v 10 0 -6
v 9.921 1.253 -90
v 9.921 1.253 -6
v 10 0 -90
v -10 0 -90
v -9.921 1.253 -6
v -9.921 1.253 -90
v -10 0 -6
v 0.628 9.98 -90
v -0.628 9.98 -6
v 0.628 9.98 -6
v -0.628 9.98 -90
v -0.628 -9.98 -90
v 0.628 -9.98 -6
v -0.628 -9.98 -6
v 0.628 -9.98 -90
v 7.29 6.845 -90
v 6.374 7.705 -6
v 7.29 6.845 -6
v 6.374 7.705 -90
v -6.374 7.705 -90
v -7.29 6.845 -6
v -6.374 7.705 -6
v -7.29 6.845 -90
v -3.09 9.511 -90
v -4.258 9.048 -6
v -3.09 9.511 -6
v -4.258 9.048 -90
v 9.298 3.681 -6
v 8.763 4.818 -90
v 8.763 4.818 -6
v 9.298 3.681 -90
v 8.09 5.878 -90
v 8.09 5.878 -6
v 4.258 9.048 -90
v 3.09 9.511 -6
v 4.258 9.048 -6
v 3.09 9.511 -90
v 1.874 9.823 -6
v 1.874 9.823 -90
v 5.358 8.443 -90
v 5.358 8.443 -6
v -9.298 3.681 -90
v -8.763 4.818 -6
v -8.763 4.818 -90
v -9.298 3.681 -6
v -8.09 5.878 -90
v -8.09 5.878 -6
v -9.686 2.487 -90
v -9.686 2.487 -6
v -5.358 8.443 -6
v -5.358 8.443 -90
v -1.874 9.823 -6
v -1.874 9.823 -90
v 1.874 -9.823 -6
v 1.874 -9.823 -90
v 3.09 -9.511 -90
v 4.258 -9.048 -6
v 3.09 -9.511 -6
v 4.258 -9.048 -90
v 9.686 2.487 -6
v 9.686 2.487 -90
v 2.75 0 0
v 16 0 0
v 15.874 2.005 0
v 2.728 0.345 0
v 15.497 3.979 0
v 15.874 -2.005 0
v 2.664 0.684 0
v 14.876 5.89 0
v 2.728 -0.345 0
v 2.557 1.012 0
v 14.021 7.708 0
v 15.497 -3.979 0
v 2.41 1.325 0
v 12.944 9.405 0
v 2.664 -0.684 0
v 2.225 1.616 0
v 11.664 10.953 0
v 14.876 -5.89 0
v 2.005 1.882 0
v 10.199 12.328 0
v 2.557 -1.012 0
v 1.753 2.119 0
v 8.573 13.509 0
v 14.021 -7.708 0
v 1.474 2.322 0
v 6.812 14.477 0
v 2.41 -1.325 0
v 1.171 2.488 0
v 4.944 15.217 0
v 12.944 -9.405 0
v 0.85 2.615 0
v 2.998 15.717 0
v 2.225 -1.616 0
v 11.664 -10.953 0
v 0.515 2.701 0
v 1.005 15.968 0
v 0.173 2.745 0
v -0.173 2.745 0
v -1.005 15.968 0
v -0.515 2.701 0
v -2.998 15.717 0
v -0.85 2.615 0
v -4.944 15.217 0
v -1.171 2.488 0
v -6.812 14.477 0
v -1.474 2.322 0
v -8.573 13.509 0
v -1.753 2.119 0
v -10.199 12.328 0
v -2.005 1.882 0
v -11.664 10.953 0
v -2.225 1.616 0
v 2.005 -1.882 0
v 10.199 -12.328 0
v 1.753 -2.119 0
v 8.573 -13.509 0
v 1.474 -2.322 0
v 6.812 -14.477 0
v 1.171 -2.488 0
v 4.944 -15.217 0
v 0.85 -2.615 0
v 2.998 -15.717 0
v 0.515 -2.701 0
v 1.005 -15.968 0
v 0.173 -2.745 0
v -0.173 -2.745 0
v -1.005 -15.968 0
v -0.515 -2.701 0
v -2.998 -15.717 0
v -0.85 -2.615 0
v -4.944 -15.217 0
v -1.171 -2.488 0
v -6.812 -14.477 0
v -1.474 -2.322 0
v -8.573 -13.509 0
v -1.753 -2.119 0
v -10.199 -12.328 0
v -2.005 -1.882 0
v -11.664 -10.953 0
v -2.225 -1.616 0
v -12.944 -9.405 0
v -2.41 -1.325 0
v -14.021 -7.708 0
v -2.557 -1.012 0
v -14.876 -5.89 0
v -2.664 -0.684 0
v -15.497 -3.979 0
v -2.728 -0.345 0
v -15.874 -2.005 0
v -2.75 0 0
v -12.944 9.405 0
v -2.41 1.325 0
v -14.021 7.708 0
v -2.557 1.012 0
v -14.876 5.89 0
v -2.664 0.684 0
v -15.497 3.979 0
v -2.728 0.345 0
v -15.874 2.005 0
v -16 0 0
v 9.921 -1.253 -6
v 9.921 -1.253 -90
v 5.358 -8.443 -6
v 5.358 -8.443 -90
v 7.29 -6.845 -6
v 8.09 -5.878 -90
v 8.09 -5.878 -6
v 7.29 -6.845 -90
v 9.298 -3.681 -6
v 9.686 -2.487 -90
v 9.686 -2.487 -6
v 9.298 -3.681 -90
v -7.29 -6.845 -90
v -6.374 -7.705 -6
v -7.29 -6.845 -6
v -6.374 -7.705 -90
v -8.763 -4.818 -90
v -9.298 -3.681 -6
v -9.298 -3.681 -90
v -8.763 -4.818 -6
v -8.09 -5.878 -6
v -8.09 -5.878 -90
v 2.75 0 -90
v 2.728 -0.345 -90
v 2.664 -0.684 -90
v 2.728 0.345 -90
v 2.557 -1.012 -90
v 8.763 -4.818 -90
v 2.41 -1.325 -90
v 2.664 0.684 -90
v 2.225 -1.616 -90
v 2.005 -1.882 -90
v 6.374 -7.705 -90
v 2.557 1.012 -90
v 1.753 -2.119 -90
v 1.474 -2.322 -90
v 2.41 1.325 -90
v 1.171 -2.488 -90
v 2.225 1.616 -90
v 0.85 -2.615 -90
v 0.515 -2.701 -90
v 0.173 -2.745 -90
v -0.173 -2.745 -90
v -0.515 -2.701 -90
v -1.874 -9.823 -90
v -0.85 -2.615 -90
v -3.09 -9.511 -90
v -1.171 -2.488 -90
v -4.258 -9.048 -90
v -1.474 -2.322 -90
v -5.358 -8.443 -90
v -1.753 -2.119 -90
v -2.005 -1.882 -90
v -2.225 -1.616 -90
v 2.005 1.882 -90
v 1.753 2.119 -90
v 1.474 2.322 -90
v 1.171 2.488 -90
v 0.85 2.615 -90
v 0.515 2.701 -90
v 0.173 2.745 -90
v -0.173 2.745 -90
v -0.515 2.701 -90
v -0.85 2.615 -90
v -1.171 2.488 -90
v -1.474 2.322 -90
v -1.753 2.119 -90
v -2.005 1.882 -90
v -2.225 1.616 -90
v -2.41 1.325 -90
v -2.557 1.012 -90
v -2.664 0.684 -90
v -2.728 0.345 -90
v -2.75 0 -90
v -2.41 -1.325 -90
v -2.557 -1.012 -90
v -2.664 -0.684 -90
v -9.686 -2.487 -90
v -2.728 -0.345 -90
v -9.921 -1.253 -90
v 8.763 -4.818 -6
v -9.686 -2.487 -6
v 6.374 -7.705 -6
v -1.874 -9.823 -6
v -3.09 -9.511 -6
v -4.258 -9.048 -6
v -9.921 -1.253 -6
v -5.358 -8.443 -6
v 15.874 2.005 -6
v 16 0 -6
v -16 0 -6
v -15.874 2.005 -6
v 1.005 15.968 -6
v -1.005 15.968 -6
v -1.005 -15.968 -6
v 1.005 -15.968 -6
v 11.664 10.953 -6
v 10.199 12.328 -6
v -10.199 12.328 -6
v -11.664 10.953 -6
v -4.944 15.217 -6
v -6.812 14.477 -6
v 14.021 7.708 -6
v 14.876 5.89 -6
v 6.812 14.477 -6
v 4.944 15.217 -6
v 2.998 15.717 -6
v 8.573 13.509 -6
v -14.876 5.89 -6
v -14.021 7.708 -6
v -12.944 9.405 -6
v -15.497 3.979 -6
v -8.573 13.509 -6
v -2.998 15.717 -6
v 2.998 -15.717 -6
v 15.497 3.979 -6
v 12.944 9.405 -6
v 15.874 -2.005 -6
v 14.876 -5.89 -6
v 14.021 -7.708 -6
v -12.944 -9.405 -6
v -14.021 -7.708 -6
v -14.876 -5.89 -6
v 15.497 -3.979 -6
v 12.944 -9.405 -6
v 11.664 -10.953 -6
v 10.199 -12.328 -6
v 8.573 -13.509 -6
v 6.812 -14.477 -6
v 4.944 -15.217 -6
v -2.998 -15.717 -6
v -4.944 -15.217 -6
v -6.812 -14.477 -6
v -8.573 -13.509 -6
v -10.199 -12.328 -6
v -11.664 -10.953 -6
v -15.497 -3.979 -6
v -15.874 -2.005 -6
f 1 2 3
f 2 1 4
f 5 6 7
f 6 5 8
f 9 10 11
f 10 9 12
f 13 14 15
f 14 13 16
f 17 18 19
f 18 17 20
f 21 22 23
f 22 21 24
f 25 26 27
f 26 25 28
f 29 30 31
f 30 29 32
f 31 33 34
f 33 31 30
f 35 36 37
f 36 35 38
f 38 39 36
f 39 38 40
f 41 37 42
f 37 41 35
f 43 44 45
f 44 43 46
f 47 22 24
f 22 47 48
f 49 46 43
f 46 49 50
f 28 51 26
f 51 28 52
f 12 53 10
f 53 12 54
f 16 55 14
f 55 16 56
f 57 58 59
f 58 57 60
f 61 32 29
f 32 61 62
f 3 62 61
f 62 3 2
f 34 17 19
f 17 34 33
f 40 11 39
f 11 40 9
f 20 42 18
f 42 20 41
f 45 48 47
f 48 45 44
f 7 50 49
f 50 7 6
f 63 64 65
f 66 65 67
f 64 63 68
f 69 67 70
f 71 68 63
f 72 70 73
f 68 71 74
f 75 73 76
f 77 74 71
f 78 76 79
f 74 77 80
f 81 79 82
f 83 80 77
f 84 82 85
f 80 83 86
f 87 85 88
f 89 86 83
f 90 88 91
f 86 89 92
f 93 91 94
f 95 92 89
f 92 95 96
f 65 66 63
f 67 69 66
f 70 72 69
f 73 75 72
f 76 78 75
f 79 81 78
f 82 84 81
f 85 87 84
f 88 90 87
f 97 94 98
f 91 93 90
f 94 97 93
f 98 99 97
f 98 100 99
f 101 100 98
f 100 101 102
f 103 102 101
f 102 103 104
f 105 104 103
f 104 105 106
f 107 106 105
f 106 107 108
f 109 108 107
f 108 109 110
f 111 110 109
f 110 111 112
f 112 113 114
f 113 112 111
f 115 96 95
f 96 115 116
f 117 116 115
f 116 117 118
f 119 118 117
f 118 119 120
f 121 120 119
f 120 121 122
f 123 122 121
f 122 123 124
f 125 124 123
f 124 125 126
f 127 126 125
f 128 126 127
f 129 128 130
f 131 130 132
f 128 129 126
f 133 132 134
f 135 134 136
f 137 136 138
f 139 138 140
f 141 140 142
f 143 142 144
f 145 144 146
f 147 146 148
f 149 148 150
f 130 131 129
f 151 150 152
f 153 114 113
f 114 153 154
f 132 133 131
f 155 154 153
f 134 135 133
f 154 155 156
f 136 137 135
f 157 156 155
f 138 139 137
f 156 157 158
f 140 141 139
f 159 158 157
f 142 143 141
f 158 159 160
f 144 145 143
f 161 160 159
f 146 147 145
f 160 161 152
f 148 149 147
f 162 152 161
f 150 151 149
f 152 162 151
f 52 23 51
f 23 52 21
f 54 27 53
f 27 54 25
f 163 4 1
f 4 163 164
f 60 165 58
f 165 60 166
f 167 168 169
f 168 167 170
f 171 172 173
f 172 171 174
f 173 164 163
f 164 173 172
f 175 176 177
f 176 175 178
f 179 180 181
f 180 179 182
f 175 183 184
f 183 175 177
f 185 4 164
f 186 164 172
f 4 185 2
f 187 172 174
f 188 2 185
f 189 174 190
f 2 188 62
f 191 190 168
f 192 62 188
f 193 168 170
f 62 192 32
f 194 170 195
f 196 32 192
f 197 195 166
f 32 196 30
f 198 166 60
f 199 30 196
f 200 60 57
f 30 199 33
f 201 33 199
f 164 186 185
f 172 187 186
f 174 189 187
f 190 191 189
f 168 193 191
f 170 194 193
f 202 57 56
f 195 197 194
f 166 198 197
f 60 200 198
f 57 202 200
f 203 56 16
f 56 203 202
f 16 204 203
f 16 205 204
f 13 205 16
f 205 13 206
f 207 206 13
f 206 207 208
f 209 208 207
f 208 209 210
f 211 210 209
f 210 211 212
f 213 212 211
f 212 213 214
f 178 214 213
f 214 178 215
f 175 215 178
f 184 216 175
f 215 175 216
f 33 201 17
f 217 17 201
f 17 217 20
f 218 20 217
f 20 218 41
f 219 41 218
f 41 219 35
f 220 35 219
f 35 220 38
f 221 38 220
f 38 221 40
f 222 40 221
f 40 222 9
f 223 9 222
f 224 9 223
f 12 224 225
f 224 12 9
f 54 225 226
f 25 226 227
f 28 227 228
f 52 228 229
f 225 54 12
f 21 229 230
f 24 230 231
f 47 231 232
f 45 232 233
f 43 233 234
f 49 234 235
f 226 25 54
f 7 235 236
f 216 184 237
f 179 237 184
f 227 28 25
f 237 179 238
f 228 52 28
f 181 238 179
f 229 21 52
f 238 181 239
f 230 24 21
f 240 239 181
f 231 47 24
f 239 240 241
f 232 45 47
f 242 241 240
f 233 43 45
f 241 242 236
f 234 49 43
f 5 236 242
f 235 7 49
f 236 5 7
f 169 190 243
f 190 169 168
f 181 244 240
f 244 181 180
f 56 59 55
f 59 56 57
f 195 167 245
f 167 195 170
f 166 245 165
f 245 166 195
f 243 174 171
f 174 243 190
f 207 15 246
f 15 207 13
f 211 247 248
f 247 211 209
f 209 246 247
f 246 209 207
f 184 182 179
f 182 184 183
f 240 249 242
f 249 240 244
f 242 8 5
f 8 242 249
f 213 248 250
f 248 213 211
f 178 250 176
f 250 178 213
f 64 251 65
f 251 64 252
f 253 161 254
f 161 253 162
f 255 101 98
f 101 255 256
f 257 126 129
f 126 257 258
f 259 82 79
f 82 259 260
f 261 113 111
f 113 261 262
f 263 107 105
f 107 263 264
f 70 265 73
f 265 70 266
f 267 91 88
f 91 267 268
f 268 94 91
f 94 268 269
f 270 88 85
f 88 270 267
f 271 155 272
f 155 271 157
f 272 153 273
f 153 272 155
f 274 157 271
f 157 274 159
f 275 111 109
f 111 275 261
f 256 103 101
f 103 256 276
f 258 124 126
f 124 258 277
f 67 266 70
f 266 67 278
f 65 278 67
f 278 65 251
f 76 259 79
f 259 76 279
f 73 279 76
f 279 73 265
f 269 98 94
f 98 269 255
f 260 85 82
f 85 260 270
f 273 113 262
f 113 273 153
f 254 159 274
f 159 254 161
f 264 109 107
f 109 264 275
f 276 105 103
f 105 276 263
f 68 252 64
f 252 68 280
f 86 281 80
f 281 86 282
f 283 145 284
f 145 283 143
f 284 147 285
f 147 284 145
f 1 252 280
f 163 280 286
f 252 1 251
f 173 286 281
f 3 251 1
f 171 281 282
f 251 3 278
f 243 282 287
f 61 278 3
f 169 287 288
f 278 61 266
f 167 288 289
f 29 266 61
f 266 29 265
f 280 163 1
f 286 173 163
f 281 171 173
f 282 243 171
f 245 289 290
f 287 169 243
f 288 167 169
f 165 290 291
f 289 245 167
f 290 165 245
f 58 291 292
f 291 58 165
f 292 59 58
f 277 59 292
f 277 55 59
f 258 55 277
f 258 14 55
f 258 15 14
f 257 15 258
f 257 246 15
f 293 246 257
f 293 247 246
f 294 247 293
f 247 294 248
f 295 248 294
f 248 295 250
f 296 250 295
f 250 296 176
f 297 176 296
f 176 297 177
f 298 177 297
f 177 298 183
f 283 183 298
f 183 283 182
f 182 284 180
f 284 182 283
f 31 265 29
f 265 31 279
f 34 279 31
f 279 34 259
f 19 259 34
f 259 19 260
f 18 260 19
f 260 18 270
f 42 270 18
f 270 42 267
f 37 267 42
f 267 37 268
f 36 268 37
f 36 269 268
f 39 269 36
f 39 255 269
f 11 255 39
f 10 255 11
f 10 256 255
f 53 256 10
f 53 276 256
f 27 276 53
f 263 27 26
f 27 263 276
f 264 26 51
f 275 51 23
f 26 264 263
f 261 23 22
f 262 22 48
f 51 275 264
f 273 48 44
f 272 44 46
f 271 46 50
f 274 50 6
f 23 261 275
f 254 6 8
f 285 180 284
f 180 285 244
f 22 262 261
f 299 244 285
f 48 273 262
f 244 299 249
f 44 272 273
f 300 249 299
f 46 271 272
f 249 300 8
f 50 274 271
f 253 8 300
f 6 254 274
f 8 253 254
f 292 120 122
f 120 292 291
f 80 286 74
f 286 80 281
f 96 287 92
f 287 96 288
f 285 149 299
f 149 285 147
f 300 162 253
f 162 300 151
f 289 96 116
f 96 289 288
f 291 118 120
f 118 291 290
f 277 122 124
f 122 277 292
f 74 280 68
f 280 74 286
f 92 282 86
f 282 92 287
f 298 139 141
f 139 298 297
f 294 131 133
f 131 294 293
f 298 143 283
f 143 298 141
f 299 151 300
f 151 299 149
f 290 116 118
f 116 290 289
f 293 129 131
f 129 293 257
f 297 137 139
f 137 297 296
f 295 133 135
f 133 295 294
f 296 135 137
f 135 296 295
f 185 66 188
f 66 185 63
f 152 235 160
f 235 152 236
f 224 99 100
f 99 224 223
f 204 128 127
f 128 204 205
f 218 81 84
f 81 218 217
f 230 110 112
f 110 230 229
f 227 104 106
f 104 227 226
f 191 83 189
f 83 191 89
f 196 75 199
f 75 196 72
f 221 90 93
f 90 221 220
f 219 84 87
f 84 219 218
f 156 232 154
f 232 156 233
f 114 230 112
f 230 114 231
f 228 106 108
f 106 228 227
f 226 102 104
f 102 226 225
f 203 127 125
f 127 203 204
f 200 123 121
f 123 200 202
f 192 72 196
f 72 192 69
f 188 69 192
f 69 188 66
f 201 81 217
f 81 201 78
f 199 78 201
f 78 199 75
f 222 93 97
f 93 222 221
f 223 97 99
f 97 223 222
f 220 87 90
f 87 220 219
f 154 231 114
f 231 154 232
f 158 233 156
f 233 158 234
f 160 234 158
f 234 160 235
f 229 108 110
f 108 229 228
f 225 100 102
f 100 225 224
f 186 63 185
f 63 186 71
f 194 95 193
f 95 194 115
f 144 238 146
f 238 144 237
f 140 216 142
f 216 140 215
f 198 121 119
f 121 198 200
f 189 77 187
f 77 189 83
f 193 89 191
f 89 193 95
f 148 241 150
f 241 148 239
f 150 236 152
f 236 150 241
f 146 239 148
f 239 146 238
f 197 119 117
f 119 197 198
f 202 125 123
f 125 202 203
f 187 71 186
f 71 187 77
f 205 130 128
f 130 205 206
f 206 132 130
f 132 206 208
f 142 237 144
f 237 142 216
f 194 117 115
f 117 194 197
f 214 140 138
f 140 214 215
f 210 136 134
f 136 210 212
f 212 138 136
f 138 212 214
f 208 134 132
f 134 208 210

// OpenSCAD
$fn = 50;


difference() {
	union() {
		translate(v = [0, 0, -90.0000000000]) {
			cylinder(h = 90, r = 10.0000000000);
		}
		translate(v = [0, 0, -6.0000000000]) {
			cylinder(h = 6, r = 16.0000000000);
		}
	}
	union() {
		#translate(v = [0, 0, -90]) {
			cylinder(h = 90, r = 2.7500000000);
		}
	}
}
